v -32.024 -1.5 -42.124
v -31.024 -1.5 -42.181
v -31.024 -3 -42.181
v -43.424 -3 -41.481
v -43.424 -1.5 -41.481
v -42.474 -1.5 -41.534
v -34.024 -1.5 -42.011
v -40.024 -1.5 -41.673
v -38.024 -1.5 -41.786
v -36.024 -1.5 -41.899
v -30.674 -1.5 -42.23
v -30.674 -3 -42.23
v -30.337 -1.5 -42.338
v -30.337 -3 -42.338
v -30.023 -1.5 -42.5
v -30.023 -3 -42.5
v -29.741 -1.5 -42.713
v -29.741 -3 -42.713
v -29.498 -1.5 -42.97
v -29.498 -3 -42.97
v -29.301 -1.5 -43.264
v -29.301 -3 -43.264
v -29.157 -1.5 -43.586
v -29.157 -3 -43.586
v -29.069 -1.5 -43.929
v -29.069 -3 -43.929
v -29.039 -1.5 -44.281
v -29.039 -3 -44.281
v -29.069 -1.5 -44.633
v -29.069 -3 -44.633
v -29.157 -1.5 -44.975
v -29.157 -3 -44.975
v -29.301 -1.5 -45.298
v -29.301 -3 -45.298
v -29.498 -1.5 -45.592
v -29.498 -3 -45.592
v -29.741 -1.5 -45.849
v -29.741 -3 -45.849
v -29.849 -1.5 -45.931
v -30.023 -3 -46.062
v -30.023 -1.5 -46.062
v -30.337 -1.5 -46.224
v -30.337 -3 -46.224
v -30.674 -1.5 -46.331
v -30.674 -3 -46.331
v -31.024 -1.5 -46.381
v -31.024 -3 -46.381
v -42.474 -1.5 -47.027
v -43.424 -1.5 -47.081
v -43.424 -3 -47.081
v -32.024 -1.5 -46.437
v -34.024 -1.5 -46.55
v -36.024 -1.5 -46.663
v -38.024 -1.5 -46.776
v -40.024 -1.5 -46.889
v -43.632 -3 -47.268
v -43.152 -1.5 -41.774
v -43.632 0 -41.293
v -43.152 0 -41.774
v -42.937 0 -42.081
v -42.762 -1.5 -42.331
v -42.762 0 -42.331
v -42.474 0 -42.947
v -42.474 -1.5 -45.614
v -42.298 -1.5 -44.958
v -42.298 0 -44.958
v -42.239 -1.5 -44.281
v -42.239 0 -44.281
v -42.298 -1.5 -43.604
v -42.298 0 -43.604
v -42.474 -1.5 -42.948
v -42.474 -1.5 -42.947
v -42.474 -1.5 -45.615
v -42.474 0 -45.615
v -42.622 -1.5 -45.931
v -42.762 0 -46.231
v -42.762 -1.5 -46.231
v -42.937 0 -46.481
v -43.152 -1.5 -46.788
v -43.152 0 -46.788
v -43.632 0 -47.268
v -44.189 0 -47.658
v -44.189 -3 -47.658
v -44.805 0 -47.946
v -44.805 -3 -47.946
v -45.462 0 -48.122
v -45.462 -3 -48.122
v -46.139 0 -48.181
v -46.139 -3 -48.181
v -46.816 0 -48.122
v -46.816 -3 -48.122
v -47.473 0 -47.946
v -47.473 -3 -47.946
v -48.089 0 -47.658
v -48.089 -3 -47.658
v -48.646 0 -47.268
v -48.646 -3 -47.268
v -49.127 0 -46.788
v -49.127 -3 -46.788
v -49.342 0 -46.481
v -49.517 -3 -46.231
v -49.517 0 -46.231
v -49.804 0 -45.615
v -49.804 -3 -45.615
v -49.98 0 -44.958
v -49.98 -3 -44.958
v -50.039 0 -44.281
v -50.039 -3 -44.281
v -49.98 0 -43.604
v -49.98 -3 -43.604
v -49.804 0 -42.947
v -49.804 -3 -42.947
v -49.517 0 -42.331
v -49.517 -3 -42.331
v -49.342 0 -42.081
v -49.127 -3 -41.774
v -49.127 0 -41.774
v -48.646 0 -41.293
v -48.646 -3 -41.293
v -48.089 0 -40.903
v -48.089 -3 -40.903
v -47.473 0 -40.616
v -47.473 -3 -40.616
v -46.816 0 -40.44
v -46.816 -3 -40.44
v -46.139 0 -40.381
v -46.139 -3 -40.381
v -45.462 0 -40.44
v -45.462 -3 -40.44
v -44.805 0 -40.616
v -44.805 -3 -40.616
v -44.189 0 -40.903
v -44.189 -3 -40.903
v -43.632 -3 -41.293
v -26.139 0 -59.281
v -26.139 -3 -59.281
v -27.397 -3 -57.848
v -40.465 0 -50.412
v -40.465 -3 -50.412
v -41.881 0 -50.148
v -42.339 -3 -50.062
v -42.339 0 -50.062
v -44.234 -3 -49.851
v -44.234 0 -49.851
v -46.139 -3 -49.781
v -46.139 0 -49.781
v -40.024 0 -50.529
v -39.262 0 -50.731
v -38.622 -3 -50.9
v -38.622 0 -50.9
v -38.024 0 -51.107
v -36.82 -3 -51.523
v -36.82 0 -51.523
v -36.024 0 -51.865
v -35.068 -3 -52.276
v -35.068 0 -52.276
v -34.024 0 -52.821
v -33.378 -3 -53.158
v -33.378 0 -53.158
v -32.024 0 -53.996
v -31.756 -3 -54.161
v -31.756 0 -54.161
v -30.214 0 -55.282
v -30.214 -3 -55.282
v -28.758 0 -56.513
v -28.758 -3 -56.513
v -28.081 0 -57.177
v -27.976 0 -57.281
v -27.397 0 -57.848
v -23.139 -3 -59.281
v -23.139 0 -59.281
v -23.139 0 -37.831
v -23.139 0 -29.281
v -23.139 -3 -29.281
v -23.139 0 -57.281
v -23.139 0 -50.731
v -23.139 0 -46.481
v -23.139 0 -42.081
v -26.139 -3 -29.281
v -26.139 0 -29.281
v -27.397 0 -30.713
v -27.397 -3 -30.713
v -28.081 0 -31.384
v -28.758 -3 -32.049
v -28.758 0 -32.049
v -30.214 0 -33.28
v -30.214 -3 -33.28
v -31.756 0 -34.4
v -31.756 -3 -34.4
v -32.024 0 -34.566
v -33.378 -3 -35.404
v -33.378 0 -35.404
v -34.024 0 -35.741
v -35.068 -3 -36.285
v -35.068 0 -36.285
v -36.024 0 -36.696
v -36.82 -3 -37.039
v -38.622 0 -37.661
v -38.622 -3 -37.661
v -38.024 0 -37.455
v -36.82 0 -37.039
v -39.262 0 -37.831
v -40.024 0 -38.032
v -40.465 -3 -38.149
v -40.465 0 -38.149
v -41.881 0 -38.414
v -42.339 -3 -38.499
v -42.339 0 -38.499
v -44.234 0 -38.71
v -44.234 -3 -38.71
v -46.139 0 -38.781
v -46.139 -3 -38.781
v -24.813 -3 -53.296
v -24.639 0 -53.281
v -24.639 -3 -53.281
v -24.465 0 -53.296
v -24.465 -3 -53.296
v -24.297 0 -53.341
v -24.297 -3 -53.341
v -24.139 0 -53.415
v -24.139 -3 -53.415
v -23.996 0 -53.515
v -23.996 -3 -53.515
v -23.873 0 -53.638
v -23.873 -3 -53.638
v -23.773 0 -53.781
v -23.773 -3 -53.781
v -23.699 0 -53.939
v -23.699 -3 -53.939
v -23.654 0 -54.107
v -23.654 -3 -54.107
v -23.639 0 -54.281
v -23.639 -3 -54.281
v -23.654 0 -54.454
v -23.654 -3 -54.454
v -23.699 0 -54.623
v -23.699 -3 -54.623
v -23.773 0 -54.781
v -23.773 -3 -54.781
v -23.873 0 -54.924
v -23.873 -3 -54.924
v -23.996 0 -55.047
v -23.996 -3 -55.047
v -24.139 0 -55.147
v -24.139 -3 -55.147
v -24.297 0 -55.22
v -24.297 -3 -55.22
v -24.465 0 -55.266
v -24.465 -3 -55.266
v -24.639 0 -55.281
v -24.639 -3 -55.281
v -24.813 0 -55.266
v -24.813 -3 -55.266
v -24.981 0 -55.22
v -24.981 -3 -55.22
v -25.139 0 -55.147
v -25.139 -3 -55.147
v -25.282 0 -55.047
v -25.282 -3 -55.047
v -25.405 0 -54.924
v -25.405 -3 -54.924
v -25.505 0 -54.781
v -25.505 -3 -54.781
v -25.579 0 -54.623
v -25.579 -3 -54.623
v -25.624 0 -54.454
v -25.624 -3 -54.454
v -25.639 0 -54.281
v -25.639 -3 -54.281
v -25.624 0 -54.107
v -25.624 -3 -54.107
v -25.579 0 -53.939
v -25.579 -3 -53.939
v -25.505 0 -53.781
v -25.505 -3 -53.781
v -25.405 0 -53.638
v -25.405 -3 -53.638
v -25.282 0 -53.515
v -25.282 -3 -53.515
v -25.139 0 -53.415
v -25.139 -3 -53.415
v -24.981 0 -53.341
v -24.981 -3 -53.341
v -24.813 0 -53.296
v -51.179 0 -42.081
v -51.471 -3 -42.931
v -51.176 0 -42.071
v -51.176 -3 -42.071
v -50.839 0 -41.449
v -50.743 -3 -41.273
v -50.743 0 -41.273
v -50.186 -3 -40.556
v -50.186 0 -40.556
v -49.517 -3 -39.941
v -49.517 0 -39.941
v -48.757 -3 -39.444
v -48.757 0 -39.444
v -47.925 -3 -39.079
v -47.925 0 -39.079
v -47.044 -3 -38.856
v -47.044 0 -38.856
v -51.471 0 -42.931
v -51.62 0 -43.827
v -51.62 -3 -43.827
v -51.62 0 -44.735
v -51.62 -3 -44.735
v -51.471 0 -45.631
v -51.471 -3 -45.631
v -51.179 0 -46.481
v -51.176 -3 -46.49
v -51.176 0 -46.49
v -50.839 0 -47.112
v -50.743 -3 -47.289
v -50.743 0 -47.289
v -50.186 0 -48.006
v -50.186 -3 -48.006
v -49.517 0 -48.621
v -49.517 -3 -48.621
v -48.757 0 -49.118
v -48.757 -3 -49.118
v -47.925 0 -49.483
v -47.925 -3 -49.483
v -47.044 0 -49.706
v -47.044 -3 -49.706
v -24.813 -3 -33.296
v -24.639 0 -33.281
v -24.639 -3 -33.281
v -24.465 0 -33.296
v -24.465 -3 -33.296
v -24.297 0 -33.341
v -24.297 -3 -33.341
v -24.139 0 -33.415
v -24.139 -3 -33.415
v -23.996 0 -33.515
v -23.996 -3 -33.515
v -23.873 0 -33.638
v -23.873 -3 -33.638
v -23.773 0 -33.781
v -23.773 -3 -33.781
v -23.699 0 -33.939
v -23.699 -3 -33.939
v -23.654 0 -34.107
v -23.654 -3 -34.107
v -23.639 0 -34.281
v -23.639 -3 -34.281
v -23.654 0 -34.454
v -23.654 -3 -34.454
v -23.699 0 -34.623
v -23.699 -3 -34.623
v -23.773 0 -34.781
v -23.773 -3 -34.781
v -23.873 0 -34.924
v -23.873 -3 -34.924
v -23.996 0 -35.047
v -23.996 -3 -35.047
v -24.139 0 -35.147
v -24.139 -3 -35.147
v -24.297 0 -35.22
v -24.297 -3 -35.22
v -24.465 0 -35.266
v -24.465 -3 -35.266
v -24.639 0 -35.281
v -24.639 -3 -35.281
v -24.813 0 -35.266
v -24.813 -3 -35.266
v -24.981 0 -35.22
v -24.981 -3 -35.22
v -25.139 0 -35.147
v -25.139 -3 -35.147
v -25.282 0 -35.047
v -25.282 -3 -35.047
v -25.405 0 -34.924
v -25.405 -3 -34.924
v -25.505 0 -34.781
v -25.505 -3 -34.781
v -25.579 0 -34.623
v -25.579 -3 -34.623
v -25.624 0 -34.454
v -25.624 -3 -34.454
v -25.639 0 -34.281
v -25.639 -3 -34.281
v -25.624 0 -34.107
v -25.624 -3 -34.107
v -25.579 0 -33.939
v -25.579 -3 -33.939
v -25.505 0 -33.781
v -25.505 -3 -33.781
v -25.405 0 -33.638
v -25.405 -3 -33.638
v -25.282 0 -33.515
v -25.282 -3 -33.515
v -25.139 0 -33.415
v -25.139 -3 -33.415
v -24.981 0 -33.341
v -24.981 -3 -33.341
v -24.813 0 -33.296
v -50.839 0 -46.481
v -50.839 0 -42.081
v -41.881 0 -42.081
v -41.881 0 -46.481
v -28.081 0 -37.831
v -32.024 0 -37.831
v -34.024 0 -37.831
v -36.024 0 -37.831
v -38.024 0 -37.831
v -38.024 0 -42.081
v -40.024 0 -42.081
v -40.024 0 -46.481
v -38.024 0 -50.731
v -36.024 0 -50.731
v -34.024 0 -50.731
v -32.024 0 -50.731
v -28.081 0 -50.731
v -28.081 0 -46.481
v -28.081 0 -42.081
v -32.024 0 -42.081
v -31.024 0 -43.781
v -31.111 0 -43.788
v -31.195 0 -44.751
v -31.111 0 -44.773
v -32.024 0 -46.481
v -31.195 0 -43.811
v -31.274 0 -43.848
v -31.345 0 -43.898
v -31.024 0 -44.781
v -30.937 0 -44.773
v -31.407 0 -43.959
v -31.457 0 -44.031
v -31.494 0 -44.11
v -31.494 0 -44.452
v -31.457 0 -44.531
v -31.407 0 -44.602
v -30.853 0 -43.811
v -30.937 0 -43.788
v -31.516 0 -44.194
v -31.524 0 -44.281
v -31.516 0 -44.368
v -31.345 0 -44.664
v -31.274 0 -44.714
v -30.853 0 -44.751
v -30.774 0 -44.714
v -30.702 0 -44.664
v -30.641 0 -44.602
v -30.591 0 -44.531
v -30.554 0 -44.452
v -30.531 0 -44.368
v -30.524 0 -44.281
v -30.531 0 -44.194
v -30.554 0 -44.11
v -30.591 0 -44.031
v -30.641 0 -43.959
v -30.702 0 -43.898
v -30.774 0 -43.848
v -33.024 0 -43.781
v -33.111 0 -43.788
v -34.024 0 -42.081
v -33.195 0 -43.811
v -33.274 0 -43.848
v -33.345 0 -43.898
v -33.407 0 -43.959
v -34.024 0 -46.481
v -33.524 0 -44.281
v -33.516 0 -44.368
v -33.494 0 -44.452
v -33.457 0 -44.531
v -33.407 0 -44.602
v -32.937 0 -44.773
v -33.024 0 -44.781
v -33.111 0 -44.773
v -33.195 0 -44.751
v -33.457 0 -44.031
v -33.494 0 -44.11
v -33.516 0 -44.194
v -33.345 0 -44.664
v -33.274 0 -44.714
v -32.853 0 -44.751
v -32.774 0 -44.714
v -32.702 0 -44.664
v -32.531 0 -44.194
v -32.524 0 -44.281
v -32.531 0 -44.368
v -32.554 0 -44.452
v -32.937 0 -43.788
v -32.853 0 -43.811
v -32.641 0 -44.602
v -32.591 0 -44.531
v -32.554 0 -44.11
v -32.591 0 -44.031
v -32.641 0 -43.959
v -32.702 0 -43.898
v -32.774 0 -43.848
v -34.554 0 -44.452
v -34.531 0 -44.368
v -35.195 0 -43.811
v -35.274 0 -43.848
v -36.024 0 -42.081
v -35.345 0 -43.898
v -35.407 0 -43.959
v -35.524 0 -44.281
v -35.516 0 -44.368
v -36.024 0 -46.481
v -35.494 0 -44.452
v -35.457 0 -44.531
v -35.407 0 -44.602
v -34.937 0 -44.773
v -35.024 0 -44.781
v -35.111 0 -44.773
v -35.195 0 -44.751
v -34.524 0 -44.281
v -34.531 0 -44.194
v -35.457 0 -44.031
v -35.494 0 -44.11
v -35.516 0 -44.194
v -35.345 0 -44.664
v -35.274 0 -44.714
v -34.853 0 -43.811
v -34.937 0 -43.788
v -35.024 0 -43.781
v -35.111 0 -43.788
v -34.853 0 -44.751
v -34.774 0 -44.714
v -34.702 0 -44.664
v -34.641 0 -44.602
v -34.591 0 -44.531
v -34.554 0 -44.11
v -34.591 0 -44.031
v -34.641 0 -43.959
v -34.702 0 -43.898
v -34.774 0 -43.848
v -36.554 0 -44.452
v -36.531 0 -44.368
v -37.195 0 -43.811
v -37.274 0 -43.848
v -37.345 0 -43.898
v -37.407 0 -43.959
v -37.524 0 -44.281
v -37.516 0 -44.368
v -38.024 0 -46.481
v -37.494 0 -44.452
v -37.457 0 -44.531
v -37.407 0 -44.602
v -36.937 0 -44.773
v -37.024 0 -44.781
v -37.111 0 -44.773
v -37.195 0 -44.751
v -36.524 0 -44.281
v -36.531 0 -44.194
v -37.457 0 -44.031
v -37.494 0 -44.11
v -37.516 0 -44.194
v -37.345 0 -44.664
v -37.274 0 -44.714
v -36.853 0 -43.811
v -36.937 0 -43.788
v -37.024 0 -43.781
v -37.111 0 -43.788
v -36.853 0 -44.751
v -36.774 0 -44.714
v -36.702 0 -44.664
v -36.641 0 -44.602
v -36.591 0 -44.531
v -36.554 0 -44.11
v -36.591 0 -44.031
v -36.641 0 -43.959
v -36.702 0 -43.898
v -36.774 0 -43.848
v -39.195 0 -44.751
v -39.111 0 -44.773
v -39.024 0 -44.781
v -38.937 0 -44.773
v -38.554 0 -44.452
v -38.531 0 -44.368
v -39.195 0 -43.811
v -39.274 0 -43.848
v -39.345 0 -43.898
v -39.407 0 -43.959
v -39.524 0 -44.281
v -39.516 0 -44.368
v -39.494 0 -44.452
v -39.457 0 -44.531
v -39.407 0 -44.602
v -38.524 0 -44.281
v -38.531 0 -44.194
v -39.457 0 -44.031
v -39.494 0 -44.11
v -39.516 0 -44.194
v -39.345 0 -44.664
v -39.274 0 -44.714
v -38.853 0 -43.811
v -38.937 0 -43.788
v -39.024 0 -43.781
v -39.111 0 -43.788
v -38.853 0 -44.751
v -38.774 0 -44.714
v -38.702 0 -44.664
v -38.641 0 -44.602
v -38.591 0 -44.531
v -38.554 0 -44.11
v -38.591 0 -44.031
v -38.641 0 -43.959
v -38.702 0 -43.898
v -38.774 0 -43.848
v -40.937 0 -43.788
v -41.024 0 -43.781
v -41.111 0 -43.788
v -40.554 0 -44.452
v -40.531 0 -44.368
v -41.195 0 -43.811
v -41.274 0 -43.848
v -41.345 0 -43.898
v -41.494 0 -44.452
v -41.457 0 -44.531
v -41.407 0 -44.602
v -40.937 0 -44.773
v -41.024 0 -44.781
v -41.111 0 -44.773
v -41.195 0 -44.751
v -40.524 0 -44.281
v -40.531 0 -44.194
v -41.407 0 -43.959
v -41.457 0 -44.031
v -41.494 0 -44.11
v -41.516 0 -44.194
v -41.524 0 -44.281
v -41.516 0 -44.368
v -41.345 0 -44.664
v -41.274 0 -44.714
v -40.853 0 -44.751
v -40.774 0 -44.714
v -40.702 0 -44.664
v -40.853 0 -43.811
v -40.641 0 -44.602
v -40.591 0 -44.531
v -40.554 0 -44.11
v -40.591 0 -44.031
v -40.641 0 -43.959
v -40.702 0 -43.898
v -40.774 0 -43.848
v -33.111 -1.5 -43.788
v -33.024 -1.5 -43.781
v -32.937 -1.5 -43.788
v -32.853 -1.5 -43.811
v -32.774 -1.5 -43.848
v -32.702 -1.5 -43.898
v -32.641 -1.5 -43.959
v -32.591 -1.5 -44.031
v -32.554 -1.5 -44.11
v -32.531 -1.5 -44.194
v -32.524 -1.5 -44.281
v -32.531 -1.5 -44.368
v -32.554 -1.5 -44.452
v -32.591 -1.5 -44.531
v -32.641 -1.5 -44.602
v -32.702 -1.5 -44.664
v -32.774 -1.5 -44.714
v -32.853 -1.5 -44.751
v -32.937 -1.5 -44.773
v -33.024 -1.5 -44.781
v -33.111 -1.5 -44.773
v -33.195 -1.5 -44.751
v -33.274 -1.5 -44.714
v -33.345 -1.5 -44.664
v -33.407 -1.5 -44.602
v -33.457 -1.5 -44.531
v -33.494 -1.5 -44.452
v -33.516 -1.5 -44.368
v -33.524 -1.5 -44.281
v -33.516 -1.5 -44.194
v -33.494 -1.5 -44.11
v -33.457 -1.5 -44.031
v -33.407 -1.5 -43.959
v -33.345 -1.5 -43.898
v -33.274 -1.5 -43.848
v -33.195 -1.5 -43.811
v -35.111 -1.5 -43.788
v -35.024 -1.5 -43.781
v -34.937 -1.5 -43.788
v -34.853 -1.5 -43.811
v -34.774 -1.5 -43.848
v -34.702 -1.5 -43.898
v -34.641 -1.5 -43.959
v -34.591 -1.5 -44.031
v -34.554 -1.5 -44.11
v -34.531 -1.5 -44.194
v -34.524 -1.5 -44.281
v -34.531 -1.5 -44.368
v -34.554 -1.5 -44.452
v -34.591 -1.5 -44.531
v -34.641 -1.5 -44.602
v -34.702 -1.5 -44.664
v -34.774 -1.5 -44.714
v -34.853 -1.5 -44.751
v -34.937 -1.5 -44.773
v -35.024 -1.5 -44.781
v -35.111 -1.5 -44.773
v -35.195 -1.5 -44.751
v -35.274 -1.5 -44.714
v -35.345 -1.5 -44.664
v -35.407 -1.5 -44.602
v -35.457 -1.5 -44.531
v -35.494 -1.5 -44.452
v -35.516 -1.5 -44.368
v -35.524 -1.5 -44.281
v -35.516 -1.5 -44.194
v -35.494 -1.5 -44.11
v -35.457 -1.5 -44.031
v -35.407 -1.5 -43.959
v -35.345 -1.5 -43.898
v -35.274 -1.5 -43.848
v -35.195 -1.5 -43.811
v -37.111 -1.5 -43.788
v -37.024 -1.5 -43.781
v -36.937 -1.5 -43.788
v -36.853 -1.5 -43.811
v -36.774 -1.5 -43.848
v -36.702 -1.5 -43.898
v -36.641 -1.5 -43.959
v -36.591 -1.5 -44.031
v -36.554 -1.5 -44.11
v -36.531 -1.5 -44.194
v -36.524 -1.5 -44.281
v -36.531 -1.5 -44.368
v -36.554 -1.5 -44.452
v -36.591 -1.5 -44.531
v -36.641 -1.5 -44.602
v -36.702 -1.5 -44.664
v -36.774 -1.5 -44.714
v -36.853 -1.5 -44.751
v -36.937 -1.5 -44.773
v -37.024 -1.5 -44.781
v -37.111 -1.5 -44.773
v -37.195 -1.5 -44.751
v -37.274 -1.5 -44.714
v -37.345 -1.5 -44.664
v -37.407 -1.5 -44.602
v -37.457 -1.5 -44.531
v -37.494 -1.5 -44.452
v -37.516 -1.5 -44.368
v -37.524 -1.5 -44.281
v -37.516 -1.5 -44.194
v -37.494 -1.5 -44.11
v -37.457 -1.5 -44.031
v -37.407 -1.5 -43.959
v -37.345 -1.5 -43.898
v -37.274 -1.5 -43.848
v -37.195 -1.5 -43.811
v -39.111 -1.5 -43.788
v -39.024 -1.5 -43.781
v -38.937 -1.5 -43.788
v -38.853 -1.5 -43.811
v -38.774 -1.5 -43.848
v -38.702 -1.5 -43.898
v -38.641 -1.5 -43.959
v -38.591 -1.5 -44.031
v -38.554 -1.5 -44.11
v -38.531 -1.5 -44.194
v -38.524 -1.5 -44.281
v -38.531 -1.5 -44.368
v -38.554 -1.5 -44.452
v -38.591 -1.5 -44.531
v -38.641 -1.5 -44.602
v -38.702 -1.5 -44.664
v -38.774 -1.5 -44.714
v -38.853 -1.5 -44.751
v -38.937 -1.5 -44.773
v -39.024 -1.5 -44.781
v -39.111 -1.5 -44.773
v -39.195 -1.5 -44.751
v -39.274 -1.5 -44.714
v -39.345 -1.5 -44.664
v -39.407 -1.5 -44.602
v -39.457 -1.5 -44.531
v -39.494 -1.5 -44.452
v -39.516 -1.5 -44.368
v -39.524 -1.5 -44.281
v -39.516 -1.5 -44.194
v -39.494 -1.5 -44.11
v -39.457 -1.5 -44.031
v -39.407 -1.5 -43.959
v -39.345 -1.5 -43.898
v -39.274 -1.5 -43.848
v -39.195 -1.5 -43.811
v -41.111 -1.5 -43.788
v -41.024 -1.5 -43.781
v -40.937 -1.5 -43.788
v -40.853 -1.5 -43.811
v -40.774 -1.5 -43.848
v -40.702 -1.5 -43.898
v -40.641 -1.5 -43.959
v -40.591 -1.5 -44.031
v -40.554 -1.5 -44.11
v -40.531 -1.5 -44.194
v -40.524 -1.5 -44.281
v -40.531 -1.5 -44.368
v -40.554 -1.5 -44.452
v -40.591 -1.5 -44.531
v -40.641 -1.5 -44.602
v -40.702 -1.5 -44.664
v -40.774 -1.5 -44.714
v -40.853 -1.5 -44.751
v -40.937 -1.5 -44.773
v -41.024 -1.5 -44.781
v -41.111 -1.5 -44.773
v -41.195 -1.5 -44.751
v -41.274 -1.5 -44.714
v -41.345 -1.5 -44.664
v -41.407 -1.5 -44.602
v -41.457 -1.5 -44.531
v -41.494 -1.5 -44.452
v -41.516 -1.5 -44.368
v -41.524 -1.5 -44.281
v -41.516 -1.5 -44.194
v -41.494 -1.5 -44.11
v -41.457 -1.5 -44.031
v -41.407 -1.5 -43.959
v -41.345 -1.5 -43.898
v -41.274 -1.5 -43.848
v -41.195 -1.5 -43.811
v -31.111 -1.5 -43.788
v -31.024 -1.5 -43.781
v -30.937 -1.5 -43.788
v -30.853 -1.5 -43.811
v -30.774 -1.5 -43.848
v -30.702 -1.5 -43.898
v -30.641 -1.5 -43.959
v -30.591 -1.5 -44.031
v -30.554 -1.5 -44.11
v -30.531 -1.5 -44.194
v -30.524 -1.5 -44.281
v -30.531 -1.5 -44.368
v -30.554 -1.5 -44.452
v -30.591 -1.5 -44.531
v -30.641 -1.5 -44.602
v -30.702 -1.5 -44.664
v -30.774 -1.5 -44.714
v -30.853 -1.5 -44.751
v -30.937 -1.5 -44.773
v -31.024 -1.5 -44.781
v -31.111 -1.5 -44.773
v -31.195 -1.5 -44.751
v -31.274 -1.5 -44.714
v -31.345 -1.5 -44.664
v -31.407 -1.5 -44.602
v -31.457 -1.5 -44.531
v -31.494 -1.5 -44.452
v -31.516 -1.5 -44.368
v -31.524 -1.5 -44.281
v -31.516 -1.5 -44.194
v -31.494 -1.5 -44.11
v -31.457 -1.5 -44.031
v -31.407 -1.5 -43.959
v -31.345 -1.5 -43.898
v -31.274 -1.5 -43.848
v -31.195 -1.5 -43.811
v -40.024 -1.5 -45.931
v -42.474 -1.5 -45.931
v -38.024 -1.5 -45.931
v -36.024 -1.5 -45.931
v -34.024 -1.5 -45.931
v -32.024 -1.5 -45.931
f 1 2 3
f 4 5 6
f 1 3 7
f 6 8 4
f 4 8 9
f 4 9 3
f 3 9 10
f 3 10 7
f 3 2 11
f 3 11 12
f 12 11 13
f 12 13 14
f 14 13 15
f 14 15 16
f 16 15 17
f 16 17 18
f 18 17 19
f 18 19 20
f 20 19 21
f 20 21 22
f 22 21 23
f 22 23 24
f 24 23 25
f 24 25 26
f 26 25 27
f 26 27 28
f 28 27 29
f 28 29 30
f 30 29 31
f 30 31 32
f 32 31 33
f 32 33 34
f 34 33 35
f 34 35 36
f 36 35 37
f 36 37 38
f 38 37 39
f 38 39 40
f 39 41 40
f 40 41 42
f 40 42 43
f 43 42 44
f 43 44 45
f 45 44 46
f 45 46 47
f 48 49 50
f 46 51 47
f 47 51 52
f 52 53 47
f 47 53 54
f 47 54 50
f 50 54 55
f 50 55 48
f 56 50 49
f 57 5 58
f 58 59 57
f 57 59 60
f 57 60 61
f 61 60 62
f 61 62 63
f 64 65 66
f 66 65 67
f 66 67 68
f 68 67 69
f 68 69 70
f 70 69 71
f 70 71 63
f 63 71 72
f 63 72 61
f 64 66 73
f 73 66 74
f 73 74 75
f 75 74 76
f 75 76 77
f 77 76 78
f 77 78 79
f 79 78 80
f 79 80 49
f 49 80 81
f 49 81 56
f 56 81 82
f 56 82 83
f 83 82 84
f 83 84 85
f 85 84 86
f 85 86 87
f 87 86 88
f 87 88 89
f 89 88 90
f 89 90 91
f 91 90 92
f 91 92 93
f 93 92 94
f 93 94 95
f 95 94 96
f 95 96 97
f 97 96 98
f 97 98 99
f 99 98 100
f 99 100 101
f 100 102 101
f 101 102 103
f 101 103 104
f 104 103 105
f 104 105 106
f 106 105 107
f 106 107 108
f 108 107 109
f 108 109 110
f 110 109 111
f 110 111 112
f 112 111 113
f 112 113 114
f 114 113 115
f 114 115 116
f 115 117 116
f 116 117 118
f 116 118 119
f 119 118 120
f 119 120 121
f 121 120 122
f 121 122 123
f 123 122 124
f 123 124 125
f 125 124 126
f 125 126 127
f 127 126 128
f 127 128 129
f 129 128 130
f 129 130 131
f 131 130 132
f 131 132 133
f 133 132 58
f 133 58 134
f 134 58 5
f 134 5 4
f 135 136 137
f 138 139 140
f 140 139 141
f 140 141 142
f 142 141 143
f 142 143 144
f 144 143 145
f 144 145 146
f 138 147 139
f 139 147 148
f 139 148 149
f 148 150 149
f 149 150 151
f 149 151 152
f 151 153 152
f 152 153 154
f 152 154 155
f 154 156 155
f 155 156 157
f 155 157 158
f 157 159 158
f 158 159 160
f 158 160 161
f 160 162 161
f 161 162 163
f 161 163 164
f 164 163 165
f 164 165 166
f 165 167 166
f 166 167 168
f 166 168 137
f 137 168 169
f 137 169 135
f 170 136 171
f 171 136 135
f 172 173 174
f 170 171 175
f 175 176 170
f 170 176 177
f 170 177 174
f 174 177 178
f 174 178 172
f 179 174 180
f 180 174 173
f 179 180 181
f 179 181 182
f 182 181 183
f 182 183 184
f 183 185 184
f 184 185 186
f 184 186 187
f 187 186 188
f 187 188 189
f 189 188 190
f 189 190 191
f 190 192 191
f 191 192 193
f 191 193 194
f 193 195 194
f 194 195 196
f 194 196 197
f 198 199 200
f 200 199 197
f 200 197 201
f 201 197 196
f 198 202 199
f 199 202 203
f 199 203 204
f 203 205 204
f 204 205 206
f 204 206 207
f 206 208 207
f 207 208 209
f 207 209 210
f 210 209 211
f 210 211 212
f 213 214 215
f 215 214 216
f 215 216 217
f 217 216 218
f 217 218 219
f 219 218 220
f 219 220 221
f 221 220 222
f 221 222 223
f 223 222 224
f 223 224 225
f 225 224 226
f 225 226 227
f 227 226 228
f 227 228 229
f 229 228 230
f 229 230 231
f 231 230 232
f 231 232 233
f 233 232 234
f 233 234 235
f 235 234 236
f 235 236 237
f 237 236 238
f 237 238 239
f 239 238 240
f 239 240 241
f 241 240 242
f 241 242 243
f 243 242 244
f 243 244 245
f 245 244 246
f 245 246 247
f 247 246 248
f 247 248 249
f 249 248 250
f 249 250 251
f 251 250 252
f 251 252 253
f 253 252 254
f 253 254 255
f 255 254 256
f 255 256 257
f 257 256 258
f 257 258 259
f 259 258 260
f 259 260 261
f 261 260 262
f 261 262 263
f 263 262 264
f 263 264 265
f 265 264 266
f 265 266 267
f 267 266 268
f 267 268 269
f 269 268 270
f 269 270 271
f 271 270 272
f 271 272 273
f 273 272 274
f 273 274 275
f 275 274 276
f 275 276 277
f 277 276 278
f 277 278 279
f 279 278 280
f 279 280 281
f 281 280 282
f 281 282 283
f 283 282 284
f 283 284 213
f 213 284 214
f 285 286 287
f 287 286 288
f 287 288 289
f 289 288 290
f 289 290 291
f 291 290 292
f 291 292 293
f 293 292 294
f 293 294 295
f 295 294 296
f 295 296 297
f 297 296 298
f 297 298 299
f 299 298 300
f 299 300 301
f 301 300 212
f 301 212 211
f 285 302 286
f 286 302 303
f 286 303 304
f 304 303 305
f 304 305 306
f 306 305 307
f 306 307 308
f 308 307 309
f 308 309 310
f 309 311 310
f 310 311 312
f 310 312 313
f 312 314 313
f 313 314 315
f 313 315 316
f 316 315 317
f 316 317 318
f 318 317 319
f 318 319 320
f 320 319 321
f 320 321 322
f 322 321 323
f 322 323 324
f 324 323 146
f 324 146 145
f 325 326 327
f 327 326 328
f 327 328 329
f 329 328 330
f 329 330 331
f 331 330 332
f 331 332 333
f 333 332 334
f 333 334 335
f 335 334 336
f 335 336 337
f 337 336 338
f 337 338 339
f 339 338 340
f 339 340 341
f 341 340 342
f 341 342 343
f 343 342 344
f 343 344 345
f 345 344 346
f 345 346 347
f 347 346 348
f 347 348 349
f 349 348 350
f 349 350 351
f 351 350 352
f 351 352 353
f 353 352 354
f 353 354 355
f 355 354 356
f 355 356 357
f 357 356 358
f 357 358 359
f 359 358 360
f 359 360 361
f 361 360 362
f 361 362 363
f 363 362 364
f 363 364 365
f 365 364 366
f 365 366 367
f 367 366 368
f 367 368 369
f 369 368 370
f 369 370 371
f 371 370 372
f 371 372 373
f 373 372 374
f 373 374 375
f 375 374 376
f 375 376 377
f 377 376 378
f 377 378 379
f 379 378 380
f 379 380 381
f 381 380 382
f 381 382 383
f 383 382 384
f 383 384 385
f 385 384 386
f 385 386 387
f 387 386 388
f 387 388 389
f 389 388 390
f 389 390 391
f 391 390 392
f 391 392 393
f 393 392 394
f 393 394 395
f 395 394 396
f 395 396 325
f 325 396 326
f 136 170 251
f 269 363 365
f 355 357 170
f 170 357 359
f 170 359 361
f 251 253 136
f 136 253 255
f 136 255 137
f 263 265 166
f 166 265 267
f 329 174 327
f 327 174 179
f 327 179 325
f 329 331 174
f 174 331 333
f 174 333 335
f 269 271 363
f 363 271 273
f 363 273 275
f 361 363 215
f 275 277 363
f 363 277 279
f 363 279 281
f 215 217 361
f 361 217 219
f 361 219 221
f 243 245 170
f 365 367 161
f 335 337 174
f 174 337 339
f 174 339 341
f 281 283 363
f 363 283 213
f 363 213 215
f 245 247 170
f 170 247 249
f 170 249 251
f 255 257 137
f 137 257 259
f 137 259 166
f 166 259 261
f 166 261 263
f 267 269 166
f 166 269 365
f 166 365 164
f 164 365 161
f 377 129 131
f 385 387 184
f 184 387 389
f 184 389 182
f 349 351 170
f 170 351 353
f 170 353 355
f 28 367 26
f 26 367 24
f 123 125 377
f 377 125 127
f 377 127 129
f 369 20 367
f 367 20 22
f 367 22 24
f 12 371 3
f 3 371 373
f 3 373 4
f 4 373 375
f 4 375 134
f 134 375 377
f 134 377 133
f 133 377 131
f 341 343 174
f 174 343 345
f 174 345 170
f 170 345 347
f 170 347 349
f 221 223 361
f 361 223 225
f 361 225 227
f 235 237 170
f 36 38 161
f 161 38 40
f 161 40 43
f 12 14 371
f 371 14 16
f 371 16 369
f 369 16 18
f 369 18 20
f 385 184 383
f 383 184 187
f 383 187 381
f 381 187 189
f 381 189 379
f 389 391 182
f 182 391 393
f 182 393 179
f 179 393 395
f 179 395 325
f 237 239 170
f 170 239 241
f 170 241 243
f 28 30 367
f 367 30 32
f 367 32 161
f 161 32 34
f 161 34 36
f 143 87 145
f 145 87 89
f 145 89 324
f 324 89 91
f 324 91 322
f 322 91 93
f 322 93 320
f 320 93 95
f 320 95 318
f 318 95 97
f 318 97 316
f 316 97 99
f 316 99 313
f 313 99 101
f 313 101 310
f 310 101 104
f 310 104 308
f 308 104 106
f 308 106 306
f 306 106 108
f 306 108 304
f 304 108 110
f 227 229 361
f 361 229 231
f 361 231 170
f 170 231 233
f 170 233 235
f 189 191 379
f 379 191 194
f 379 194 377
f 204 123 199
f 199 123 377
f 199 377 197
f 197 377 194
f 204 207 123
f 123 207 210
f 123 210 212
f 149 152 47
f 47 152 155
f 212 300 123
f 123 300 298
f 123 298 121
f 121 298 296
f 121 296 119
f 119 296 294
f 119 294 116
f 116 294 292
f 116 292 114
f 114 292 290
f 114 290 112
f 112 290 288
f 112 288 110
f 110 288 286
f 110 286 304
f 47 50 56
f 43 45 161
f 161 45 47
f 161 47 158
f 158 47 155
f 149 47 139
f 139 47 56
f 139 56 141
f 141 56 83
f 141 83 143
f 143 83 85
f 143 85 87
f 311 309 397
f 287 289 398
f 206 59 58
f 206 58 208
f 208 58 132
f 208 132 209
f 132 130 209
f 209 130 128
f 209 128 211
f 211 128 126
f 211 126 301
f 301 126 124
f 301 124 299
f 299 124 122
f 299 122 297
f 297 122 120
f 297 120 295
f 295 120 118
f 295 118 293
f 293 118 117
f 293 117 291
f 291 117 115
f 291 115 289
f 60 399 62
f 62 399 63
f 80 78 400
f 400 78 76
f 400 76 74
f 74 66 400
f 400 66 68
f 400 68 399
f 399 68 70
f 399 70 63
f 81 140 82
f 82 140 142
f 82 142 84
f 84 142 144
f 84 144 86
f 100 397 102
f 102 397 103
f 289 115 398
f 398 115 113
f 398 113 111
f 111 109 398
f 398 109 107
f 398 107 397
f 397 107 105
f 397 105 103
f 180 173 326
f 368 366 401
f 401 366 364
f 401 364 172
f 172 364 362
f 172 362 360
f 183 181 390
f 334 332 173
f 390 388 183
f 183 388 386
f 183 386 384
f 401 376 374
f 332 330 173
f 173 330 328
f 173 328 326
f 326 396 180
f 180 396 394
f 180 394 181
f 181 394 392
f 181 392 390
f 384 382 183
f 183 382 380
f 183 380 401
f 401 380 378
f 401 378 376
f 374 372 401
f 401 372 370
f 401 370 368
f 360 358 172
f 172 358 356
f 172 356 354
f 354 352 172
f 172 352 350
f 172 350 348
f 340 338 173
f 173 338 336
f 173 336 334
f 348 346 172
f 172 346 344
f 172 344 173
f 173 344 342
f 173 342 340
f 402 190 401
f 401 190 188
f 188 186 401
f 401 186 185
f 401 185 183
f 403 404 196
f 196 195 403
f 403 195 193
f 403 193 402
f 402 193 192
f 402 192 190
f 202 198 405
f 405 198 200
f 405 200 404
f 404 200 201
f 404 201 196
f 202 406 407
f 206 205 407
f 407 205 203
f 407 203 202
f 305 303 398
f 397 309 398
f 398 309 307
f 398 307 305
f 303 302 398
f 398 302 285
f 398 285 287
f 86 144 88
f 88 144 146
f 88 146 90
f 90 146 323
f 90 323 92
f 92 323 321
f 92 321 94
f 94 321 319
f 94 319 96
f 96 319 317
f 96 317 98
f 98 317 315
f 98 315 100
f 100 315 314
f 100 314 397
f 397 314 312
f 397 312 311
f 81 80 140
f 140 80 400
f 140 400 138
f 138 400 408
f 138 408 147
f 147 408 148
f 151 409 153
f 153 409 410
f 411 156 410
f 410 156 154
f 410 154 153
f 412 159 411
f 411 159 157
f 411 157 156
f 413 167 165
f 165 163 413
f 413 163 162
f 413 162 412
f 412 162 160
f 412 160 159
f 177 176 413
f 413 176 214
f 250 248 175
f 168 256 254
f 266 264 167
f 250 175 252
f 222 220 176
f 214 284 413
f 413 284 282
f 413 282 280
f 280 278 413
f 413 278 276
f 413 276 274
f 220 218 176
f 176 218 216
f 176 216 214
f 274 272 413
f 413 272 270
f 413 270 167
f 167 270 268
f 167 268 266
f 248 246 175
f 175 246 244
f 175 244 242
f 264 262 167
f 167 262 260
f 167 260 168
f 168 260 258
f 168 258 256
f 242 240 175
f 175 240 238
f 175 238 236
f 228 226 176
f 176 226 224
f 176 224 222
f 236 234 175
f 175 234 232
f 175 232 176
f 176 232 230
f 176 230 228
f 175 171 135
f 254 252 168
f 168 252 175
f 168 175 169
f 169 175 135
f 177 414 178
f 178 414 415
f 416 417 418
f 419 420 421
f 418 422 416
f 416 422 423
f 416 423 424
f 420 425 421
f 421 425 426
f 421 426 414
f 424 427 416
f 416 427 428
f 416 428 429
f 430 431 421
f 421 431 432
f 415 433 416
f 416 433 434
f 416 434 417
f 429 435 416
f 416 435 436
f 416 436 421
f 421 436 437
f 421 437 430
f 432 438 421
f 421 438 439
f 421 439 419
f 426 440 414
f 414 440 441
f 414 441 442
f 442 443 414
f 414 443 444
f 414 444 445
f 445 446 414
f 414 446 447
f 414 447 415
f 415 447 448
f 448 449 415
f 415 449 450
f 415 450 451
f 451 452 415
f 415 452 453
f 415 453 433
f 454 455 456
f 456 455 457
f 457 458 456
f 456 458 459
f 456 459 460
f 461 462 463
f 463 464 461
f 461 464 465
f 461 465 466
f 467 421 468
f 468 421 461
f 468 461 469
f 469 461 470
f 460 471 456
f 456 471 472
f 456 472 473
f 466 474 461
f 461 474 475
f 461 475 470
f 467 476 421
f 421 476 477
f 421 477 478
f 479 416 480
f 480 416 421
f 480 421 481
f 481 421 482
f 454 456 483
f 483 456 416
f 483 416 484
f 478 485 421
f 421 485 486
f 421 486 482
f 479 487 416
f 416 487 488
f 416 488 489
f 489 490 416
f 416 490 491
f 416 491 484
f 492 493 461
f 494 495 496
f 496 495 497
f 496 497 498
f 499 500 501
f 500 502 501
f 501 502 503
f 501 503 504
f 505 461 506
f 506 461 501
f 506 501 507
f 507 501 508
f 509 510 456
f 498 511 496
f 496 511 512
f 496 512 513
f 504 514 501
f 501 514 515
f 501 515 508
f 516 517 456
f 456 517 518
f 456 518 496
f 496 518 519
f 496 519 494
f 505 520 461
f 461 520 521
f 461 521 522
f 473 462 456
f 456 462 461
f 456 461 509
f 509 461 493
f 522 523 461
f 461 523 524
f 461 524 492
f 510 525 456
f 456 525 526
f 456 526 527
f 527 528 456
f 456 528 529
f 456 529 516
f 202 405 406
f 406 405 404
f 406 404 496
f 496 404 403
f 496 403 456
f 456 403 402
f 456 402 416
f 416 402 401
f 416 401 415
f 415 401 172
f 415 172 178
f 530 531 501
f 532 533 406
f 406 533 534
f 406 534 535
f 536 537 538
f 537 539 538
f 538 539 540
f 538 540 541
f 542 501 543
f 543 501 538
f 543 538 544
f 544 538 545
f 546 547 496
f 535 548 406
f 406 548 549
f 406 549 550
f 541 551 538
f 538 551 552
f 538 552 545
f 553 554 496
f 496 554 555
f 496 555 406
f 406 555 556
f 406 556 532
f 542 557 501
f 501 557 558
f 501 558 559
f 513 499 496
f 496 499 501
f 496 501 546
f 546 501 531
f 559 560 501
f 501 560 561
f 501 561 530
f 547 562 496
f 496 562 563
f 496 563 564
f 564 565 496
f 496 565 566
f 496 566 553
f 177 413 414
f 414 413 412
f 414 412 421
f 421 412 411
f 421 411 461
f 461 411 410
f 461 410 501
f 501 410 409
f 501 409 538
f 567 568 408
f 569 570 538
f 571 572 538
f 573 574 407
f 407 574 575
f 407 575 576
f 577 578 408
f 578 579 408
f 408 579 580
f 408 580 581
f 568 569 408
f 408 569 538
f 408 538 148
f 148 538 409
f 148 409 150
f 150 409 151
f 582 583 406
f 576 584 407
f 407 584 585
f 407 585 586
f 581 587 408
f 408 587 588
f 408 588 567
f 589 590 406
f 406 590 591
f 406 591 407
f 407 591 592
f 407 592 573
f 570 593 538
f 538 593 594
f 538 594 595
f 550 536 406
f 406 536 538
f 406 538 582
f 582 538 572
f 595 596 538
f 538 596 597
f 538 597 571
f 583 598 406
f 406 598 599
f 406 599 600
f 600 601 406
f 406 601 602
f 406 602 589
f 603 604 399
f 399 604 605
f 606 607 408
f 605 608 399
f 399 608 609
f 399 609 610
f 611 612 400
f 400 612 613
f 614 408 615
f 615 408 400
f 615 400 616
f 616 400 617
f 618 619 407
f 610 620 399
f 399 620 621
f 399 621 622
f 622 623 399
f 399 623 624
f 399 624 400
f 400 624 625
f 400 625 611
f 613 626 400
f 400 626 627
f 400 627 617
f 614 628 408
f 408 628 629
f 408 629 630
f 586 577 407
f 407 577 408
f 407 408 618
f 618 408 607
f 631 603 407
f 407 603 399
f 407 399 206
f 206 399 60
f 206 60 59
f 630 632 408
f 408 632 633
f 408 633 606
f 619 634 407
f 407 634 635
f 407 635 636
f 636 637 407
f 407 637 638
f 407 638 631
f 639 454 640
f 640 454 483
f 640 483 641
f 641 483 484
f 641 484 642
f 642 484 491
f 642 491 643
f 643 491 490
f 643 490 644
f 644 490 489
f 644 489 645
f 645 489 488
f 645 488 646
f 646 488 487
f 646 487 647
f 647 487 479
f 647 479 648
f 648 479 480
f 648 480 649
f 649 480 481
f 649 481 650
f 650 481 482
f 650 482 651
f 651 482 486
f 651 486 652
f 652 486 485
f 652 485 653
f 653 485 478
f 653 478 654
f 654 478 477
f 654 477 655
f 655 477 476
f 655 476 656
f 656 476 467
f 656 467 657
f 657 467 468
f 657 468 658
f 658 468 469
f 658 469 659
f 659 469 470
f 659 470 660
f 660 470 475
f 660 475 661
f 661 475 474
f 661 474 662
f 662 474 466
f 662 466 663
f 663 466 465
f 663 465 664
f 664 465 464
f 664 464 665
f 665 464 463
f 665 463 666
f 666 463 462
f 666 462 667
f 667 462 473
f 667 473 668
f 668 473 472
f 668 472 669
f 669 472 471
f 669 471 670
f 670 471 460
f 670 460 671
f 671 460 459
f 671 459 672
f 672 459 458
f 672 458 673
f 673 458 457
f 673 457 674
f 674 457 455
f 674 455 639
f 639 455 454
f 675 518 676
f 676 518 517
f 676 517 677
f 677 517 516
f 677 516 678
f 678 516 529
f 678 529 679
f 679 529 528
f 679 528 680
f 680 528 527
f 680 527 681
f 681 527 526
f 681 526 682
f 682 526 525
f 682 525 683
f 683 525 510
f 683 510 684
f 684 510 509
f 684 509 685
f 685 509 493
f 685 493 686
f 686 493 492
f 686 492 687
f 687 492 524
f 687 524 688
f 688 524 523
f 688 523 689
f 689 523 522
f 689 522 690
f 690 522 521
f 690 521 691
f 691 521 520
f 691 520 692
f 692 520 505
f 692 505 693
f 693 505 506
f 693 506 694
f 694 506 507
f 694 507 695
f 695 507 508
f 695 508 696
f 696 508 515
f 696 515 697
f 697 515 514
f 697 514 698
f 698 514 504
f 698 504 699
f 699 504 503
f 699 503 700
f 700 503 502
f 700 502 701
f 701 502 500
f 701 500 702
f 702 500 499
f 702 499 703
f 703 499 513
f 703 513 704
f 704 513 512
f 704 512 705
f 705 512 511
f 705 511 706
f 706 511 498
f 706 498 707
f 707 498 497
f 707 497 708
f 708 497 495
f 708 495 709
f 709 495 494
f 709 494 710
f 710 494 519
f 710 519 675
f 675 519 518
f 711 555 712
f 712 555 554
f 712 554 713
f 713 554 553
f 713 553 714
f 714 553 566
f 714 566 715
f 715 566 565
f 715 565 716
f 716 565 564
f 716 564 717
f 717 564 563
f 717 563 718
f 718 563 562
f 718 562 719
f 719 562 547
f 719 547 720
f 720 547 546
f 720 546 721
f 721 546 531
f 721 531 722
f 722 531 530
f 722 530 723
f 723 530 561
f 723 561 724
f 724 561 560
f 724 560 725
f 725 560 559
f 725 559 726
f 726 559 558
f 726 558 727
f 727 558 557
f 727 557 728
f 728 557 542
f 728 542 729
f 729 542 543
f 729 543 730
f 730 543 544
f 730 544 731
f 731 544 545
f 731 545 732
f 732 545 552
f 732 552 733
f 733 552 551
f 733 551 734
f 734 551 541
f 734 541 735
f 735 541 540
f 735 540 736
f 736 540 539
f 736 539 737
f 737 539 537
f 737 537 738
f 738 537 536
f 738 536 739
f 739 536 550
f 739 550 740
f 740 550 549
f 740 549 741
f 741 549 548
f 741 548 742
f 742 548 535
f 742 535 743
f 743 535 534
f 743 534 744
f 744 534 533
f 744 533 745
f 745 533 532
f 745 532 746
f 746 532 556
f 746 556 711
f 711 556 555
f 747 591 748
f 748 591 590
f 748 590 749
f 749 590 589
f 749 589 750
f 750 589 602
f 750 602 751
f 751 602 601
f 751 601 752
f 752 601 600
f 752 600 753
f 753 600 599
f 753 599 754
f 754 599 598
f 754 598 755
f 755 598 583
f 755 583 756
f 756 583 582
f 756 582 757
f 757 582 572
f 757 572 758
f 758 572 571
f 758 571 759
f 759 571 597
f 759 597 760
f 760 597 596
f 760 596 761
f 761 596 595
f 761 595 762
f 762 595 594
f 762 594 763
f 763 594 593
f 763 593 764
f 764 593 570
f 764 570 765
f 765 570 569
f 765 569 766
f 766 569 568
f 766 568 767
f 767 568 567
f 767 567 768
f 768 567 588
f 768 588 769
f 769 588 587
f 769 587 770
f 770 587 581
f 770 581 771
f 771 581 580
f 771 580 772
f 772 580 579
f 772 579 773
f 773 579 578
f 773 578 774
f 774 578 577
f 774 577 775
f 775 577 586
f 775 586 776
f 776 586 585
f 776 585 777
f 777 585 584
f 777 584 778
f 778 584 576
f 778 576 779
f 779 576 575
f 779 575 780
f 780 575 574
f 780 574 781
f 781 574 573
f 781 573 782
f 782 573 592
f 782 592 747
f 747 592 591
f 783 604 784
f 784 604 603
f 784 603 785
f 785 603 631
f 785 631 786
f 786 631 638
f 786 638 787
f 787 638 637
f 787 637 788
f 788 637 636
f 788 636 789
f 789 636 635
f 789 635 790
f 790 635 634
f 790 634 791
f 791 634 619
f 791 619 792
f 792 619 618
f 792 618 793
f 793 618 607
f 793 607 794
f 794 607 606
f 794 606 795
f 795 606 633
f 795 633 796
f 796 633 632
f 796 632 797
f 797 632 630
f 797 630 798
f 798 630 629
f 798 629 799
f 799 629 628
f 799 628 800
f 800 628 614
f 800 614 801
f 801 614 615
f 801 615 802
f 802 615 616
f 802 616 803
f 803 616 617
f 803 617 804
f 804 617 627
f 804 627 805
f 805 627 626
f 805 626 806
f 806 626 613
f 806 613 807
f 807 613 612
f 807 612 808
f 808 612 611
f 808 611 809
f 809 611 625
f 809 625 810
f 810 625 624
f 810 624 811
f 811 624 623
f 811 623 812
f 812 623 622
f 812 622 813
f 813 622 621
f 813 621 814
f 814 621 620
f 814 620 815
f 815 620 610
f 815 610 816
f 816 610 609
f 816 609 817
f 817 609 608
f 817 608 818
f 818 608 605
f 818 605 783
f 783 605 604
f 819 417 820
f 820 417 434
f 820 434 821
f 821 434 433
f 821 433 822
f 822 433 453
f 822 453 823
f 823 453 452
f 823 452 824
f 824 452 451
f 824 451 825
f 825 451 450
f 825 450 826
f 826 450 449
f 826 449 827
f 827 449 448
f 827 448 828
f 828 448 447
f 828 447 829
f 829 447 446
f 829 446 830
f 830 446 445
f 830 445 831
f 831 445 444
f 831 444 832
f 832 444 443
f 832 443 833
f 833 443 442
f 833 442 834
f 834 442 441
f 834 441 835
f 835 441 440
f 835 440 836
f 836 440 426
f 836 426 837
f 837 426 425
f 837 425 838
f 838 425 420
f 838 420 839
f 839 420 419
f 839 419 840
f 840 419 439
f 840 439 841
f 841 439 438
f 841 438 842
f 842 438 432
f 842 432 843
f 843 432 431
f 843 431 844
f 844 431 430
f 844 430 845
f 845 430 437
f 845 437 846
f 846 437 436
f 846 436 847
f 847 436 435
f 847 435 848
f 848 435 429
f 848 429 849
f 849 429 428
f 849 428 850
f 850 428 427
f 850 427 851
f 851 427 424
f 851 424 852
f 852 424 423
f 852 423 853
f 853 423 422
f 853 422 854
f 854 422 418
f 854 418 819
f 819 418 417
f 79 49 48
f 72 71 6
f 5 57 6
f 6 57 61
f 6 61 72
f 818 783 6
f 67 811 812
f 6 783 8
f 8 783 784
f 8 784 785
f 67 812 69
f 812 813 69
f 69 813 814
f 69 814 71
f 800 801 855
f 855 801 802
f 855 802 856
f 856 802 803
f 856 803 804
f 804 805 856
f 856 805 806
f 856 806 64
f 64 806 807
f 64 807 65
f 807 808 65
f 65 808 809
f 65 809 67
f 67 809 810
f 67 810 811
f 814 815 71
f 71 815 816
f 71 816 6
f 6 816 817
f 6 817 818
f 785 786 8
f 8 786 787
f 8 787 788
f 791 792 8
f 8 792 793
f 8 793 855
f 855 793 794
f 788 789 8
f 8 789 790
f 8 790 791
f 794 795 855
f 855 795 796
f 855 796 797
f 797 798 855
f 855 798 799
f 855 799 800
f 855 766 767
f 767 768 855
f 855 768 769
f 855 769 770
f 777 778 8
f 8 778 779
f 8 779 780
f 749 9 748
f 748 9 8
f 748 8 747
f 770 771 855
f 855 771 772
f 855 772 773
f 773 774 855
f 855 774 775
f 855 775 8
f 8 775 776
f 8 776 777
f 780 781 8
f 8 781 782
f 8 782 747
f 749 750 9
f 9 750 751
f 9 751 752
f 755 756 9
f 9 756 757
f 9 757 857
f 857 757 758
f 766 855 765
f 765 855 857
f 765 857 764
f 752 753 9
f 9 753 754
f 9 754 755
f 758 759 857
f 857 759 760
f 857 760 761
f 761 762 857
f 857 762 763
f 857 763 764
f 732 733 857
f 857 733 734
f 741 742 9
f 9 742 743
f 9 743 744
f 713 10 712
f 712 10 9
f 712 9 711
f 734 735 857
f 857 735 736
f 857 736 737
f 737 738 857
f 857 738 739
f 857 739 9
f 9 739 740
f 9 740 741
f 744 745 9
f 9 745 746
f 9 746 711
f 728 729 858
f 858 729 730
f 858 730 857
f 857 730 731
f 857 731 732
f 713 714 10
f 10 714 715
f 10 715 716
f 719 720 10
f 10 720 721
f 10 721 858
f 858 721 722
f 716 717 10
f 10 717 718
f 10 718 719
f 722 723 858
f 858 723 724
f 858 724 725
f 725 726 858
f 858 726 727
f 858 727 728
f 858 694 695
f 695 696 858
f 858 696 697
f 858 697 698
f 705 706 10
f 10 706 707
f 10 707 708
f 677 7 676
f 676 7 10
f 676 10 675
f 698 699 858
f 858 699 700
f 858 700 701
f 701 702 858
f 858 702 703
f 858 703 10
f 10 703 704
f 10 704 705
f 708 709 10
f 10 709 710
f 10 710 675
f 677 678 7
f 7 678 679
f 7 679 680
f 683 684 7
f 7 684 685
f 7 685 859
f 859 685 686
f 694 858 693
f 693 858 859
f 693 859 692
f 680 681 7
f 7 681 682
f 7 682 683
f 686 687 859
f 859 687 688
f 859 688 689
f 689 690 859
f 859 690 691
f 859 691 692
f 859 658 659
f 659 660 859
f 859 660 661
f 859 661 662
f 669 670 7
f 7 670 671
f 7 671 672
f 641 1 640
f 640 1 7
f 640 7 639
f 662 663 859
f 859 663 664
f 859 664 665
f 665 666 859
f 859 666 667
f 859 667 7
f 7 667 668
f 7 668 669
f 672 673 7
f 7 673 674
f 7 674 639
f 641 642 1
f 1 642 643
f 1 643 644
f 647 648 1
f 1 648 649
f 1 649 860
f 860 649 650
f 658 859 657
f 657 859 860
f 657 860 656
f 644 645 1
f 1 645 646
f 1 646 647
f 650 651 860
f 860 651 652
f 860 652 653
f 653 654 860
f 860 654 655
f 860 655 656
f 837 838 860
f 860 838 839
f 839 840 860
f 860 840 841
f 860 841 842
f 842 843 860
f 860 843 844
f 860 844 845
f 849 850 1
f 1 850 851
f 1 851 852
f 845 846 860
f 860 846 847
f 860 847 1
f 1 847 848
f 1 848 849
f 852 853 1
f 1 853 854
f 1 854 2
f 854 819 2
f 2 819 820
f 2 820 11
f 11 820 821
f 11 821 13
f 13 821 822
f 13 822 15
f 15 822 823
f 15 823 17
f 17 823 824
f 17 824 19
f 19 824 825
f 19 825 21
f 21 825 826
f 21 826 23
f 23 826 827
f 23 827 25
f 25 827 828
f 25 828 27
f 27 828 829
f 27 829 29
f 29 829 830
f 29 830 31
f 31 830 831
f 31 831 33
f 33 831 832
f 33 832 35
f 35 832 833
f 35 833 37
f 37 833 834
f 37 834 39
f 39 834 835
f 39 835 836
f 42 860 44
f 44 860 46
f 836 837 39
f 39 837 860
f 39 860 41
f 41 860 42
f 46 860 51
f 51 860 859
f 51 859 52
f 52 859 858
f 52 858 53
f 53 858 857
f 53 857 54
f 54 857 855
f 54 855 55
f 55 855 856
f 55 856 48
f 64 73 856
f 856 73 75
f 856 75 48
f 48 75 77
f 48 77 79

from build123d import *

# Parameters (mm, degrees)
SKETCH1_R           = 1
BOSS_EXTRUDE1_DEPTH = 3
SKETCH1_3_R         = 0.5
BOSS_EXTRUDE2_DEPTH = 1.5


with BuildPart() as part:
    # Sketch1 → Boss-Extrude1 (new body)
    with BuildSketch(Plane(origin=(0, 0, 0), x_dir=(1, 0, 0), z_dir=(0, 1, 0))):
        with BuildLine():
            ThreePointArc((-46.139075952, 38.780795182), (-35.068281039, 36.285100261), (-26.139075952, 29.280795182))
            Line((-26.139075952, 29.280795182), (-23.139075952, 29.280795182))
            Line((-23.139075952, 29.280795182), (-23.139075952, 59.280795182))
            Line((-23.139075952, 59.280795182), (-26.139075952, 59.280795182))
            ThreePointArc((-26.139075952, 59.280795182), (-35.068281039, 52.276490103), (-46.139075952, 49.780795182))
            ThreePointArc((-46.139075952, 49.780795182), (-51.639075952, 44.280795182), (-46.139075952, 38.780795182))
        make_face()
        with BuildLine():
            ThreePointArc((-43.42430156, 41.480795182), (-50.039075952, 44.280795182), (-43.42430156, 47.080795182))
            Line((-43.42430156, 47.080795182), (-31.023874876, 46.380795182))
            ThreePointArc((-31.023874876, 46.380795182), (-29.039075952, 44.280795182), (-31.023874876, 42.180795182))
            Line((-31.023874876, 42.180795182), (-43.42430156, 41.480795182))
        make_face(mode=Mode.SUBTRACT)
        with Locations((-24.639075952, 54.280795182)):
            Circle(SKETCH1_R, mode=Mode.SUBTRACT)
        with Locations((-24.639075952, 34.280795182)):
            Circle(SKETCH1_R, mode=Mode.SUBTRACT)
    extrude(amount=-BOSS_EXTRUDE1_DEPTH)

    # Sketch1<3> → Boss-Extrude2 (add)
    with BuildSketch(Plane(origin=(0, 0, 0), x_dir=(1, 0, 0), z_dir=(0, 1, 0))):
        with BuildLine():
            ThreePointArc((-43.42430156, 47.080795182), (-42.239075952, 44.280795182), (-43.42430156, 41.480795182))
            Line((-43.42430156, 41.480795182), (-31.023874876, 42.180795182))
            ThreePointArc((-31.023874876, 42.180795182), (-29.039075952, 44.280795182), (-31.023874876, 46.380795182))
            Line((-31.023874876, 46.380795182), (-43.42430156, 47.080795182))
        make_face()
        with Locations((-41.023874876, 44.280795182)):
            Circle(SKETCH1_3_R, mode=Mode.SUBTRACT)
        with Locations((-33.023874876, 44.280795182)):
            Circle(SKETCH1_3_R, mode=Mode.SUBTRACT)
        with Locations((-31.023874876, 44.280795182)):
            Circle(SKETCH1_3_R, mode=Mode.SUBTRACT)
        with Locations((-39.023874876, 44.280795182)):
            Circle(SKETCH1_3_R, mode=Mode.SUBTRACT)
        with Locations((-37.023874876, 44.280795182)):
            Circle(SKETCH1_3_R, mode=Mode.SUBTRACT)
        with Locations((-35.023874876, 44.280795182)):
            Circle(SKETCH1_3_R, mode=Mode.SUBTRACT)
    extrude(amount=-BOSS_EXTRUDE2_DEPTH)


solid = part.part
